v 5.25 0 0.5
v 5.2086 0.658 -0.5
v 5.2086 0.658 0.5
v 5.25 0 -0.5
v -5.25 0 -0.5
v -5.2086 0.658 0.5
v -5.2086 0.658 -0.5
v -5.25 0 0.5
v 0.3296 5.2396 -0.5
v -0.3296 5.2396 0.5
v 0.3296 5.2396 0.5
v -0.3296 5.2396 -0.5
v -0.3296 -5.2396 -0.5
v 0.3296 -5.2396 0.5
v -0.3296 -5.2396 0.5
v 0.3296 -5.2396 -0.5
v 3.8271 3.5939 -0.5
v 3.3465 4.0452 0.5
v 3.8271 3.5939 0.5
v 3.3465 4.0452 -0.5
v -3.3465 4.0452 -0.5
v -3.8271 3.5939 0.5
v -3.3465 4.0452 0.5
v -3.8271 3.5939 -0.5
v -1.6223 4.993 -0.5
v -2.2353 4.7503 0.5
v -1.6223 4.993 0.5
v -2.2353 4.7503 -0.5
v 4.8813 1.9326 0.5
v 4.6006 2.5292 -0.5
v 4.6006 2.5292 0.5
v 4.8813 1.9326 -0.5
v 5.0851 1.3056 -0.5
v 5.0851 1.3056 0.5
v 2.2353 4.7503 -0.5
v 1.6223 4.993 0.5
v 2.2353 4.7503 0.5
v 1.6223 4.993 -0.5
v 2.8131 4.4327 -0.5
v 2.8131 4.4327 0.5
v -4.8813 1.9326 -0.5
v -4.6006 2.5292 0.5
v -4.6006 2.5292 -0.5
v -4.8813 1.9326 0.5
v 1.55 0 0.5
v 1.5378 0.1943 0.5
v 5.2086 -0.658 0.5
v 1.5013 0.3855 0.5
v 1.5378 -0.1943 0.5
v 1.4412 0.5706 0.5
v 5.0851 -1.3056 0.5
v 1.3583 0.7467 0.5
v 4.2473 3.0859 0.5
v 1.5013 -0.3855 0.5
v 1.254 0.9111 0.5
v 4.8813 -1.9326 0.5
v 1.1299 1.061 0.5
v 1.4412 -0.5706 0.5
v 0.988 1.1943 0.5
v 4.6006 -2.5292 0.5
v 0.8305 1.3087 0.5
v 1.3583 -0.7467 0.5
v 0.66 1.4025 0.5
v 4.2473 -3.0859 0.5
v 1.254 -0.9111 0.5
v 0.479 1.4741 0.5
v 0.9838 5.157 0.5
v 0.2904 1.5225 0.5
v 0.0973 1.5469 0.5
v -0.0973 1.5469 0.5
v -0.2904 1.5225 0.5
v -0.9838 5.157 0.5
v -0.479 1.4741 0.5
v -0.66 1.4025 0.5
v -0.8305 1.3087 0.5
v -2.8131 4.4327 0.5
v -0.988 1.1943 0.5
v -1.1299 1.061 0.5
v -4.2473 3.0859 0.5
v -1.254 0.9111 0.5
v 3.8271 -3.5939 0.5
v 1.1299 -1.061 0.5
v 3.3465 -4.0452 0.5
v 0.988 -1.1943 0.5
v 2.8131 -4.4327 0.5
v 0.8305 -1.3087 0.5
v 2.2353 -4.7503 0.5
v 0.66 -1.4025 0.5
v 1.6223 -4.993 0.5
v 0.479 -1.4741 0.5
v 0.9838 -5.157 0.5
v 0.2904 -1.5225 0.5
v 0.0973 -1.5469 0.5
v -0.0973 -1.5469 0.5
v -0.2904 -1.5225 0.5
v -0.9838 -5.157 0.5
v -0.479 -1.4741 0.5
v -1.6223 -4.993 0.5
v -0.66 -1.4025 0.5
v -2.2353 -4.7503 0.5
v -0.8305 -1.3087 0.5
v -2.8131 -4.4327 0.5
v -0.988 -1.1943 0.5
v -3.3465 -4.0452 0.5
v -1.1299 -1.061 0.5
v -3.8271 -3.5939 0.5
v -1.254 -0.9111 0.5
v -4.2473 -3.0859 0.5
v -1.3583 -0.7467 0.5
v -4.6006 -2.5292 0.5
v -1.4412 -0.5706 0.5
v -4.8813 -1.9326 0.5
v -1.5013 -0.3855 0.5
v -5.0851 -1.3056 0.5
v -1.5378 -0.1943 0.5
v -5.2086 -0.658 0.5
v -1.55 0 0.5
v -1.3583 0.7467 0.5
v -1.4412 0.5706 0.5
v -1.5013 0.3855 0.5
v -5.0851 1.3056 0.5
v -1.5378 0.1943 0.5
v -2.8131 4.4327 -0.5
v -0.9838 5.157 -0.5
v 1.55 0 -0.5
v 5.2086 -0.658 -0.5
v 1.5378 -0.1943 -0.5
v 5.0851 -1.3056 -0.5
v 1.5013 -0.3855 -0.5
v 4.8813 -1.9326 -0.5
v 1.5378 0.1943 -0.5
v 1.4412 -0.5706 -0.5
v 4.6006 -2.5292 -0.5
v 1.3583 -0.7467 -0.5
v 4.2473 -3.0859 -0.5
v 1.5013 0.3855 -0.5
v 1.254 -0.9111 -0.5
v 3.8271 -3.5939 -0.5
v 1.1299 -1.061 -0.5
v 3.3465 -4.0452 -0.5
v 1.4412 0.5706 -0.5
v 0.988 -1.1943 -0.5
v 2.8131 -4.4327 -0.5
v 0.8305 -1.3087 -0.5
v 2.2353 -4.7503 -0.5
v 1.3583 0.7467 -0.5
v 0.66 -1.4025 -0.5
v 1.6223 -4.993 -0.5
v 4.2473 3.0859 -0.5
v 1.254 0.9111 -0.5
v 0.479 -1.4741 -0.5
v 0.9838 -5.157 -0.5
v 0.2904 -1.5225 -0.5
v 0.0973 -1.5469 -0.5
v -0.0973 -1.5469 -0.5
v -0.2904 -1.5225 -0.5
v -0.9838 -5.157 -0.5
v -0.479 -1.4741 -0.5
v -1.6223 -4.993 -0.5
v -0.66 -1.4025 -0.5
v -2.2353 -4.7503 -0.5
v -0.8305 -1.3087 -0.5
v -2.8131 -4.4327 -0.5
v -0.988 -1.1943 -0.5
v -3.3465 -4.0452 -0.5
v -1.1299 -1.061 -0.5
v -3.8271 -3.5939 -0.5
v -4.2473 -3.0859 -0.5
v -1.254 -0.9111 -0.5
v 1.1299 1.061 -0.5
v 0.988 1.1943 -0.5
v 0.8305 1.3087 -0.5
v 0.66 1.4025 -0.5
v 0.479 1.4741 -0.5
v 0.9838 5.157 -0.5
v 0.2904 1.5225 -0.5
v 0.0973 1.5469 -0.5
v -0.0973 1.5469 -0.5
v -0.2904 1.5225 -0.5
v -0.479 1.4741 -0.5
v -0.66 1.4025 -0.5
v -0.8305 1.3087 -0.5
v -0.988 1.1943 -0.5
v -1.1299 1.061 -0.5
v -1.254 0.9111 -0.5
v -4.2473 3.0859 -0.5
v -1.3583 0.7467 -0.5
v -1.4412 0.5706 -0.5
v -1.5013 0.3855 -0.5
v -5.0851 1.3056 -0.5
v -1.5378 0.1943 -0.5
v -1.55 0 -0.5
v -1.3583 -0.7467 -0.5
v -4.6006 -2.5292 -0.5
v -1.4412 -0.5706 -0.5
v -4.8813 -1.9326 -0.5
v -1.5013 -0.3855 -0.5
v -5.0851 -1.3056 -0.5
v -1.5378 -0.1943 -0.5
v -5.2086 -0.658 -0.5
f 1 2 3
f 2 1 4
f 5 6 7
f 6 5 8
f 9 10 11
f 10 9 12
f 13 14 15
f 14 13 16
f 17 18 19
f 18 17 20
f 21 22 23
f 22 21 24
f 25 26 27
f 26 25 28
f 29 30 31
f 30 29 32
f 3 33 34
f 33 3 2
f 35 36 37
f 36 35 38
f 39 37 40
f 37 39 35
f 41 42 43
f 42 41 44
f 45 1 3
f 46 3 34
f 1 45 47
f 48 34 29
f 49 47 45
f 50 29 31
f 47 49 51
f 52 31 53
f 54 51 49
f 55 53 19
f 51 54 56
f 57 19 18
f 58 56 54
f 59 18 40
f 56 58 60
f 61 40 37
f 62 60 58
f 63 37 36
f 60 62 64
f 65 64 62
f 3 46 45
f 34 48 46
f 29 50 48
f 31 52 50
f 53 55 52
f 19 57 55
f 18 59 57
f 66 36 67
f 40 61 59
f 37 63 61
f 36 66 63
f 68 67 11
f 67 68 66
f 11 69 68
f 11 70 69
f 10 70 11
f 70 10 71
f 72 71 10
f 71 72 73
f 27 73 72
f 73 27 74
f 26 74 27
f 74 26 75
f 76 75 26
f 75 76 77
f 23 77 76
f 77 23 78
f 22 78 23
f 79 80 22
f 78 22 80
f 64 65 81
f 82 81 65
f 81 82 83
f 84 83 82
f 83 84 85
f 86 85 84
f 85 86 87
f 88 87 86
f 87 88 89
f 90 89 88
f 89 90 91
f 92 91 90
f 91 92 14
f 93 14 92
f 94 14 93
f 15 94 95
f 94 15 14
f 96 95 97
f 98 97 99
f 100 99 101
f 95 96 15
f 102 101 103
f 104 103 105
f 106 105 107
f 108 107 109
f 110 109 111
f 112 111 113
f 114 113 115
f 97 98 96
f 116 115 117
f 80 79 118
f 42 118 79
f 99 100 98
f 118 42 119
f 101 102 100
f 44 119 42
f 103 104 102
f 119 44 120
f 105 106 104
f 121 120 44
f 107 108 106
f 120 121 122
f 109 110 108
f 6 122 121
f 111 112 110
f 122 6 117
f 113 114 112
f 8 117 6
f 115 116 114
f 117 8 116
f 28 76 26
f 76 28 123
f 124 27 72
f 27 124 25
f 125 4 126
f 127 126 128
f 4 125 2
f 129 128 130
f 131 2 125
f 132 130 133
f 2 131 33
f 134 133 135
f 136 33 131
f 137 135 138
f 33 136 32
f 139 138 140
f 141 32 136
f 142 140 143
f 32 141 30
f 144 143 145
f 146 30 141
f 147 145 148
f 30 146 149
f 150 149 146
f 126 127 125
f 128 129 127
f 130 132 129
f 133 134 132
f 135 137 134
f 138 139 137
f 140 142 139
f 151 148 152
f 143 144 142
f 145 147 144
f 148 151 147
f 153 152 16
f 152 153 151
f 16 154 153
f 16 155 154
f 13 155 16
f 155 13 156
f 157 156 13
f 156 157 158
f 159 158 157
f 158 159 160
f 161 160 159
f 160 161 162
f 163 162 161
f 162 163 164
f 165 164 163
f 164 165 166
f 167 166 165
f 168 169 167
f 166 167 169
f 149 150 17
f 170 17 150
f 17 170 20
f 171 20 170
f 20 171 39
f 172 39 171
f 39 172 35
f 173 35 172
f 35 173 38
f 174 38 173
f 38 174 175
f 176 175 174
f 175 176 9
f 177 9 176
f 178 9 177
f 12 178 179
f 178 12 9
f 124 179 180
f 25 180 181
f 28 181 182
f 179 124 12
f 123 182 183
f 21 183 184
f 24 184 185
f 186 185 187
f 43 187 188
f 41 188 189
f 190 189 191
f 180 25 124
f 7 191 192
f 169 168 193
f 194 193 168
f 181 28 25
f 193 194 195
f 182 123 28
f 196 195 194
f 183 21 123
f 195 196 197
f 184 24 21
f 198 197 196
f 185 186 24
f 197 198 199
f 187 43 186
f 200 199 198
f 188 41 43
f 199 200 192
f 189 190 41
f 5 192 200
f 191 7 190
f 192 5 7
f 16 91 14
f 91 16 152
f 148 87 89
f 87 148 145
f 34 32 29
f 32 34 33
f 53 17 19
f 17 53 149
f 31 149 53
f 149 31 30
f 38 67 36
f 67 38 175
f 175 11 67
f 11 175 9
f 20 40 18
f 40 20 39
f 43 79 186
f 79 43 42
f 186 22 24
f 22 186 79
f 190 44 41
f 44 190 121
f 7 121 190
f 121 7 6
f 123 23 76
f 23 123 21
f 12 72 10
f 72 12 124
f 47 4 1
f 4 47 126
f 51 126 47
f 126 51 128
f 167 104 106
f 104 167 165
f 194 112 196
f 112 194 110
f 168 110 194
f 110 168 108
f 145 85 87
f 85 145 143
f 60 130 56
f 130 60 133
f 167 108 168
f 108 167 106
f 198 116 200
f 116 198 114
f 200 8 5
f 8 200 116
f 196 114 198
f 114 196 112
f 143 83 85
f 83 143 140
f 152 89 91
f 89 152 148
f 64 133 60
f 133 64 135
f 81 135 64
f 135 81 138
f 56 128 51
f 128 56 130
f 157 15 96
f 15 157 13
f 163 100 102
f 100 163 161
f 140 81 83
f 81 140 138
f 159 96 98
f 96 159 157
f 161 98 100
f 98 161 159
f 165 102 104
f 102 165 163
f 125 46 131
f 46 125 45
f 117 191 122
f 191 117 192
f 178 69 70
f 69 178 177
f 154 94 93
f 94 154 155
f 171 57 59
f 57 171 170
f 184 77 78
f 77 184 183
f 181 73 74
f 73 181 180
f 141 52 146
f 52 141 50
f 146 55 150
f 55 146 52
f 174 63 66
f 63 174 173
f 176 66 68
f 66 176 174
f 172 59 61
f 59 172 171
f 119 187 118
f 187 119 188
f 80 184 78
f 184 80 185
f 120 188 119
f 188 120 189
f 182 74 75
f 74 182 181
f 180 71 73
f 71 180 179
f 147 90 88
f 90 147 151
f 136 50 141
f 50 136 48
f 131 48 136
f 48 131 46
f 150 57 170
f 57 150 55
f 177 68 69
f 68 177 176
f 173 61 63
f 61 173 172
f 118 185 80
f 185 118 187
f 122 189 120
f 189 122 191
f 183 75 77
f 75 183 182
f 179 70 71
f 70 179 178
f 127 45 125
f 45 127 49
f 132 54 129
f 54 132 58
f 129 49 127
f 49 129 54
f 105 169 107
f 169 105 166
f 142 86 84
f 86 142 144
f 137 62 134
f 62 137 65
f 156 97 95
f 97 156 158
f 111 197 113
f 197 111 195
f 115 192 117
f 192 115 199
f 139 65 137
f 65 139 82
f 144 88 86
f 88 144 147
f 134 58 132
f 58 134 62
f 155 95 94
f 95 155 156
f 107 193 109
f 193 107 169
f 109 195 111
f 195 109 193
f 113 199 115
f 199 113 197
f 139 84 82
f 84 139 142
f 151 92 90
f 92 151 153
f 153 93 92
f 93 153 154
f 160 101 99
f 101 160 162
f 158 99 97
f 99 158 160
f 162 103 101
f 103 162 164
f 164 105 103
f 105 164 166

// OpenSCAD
$fn = 50;


difference() {
	union() {
		translate(v = [0, 0, -0.5000000000]) {
			cylinder(h = 1, r = 5.2500000000);
		}
	}
	union() {
		translate(v = [0, 0, -100.0000000000]) {
			cylinder(h = 200, r = 1.5500000000);
		}
	}
}
